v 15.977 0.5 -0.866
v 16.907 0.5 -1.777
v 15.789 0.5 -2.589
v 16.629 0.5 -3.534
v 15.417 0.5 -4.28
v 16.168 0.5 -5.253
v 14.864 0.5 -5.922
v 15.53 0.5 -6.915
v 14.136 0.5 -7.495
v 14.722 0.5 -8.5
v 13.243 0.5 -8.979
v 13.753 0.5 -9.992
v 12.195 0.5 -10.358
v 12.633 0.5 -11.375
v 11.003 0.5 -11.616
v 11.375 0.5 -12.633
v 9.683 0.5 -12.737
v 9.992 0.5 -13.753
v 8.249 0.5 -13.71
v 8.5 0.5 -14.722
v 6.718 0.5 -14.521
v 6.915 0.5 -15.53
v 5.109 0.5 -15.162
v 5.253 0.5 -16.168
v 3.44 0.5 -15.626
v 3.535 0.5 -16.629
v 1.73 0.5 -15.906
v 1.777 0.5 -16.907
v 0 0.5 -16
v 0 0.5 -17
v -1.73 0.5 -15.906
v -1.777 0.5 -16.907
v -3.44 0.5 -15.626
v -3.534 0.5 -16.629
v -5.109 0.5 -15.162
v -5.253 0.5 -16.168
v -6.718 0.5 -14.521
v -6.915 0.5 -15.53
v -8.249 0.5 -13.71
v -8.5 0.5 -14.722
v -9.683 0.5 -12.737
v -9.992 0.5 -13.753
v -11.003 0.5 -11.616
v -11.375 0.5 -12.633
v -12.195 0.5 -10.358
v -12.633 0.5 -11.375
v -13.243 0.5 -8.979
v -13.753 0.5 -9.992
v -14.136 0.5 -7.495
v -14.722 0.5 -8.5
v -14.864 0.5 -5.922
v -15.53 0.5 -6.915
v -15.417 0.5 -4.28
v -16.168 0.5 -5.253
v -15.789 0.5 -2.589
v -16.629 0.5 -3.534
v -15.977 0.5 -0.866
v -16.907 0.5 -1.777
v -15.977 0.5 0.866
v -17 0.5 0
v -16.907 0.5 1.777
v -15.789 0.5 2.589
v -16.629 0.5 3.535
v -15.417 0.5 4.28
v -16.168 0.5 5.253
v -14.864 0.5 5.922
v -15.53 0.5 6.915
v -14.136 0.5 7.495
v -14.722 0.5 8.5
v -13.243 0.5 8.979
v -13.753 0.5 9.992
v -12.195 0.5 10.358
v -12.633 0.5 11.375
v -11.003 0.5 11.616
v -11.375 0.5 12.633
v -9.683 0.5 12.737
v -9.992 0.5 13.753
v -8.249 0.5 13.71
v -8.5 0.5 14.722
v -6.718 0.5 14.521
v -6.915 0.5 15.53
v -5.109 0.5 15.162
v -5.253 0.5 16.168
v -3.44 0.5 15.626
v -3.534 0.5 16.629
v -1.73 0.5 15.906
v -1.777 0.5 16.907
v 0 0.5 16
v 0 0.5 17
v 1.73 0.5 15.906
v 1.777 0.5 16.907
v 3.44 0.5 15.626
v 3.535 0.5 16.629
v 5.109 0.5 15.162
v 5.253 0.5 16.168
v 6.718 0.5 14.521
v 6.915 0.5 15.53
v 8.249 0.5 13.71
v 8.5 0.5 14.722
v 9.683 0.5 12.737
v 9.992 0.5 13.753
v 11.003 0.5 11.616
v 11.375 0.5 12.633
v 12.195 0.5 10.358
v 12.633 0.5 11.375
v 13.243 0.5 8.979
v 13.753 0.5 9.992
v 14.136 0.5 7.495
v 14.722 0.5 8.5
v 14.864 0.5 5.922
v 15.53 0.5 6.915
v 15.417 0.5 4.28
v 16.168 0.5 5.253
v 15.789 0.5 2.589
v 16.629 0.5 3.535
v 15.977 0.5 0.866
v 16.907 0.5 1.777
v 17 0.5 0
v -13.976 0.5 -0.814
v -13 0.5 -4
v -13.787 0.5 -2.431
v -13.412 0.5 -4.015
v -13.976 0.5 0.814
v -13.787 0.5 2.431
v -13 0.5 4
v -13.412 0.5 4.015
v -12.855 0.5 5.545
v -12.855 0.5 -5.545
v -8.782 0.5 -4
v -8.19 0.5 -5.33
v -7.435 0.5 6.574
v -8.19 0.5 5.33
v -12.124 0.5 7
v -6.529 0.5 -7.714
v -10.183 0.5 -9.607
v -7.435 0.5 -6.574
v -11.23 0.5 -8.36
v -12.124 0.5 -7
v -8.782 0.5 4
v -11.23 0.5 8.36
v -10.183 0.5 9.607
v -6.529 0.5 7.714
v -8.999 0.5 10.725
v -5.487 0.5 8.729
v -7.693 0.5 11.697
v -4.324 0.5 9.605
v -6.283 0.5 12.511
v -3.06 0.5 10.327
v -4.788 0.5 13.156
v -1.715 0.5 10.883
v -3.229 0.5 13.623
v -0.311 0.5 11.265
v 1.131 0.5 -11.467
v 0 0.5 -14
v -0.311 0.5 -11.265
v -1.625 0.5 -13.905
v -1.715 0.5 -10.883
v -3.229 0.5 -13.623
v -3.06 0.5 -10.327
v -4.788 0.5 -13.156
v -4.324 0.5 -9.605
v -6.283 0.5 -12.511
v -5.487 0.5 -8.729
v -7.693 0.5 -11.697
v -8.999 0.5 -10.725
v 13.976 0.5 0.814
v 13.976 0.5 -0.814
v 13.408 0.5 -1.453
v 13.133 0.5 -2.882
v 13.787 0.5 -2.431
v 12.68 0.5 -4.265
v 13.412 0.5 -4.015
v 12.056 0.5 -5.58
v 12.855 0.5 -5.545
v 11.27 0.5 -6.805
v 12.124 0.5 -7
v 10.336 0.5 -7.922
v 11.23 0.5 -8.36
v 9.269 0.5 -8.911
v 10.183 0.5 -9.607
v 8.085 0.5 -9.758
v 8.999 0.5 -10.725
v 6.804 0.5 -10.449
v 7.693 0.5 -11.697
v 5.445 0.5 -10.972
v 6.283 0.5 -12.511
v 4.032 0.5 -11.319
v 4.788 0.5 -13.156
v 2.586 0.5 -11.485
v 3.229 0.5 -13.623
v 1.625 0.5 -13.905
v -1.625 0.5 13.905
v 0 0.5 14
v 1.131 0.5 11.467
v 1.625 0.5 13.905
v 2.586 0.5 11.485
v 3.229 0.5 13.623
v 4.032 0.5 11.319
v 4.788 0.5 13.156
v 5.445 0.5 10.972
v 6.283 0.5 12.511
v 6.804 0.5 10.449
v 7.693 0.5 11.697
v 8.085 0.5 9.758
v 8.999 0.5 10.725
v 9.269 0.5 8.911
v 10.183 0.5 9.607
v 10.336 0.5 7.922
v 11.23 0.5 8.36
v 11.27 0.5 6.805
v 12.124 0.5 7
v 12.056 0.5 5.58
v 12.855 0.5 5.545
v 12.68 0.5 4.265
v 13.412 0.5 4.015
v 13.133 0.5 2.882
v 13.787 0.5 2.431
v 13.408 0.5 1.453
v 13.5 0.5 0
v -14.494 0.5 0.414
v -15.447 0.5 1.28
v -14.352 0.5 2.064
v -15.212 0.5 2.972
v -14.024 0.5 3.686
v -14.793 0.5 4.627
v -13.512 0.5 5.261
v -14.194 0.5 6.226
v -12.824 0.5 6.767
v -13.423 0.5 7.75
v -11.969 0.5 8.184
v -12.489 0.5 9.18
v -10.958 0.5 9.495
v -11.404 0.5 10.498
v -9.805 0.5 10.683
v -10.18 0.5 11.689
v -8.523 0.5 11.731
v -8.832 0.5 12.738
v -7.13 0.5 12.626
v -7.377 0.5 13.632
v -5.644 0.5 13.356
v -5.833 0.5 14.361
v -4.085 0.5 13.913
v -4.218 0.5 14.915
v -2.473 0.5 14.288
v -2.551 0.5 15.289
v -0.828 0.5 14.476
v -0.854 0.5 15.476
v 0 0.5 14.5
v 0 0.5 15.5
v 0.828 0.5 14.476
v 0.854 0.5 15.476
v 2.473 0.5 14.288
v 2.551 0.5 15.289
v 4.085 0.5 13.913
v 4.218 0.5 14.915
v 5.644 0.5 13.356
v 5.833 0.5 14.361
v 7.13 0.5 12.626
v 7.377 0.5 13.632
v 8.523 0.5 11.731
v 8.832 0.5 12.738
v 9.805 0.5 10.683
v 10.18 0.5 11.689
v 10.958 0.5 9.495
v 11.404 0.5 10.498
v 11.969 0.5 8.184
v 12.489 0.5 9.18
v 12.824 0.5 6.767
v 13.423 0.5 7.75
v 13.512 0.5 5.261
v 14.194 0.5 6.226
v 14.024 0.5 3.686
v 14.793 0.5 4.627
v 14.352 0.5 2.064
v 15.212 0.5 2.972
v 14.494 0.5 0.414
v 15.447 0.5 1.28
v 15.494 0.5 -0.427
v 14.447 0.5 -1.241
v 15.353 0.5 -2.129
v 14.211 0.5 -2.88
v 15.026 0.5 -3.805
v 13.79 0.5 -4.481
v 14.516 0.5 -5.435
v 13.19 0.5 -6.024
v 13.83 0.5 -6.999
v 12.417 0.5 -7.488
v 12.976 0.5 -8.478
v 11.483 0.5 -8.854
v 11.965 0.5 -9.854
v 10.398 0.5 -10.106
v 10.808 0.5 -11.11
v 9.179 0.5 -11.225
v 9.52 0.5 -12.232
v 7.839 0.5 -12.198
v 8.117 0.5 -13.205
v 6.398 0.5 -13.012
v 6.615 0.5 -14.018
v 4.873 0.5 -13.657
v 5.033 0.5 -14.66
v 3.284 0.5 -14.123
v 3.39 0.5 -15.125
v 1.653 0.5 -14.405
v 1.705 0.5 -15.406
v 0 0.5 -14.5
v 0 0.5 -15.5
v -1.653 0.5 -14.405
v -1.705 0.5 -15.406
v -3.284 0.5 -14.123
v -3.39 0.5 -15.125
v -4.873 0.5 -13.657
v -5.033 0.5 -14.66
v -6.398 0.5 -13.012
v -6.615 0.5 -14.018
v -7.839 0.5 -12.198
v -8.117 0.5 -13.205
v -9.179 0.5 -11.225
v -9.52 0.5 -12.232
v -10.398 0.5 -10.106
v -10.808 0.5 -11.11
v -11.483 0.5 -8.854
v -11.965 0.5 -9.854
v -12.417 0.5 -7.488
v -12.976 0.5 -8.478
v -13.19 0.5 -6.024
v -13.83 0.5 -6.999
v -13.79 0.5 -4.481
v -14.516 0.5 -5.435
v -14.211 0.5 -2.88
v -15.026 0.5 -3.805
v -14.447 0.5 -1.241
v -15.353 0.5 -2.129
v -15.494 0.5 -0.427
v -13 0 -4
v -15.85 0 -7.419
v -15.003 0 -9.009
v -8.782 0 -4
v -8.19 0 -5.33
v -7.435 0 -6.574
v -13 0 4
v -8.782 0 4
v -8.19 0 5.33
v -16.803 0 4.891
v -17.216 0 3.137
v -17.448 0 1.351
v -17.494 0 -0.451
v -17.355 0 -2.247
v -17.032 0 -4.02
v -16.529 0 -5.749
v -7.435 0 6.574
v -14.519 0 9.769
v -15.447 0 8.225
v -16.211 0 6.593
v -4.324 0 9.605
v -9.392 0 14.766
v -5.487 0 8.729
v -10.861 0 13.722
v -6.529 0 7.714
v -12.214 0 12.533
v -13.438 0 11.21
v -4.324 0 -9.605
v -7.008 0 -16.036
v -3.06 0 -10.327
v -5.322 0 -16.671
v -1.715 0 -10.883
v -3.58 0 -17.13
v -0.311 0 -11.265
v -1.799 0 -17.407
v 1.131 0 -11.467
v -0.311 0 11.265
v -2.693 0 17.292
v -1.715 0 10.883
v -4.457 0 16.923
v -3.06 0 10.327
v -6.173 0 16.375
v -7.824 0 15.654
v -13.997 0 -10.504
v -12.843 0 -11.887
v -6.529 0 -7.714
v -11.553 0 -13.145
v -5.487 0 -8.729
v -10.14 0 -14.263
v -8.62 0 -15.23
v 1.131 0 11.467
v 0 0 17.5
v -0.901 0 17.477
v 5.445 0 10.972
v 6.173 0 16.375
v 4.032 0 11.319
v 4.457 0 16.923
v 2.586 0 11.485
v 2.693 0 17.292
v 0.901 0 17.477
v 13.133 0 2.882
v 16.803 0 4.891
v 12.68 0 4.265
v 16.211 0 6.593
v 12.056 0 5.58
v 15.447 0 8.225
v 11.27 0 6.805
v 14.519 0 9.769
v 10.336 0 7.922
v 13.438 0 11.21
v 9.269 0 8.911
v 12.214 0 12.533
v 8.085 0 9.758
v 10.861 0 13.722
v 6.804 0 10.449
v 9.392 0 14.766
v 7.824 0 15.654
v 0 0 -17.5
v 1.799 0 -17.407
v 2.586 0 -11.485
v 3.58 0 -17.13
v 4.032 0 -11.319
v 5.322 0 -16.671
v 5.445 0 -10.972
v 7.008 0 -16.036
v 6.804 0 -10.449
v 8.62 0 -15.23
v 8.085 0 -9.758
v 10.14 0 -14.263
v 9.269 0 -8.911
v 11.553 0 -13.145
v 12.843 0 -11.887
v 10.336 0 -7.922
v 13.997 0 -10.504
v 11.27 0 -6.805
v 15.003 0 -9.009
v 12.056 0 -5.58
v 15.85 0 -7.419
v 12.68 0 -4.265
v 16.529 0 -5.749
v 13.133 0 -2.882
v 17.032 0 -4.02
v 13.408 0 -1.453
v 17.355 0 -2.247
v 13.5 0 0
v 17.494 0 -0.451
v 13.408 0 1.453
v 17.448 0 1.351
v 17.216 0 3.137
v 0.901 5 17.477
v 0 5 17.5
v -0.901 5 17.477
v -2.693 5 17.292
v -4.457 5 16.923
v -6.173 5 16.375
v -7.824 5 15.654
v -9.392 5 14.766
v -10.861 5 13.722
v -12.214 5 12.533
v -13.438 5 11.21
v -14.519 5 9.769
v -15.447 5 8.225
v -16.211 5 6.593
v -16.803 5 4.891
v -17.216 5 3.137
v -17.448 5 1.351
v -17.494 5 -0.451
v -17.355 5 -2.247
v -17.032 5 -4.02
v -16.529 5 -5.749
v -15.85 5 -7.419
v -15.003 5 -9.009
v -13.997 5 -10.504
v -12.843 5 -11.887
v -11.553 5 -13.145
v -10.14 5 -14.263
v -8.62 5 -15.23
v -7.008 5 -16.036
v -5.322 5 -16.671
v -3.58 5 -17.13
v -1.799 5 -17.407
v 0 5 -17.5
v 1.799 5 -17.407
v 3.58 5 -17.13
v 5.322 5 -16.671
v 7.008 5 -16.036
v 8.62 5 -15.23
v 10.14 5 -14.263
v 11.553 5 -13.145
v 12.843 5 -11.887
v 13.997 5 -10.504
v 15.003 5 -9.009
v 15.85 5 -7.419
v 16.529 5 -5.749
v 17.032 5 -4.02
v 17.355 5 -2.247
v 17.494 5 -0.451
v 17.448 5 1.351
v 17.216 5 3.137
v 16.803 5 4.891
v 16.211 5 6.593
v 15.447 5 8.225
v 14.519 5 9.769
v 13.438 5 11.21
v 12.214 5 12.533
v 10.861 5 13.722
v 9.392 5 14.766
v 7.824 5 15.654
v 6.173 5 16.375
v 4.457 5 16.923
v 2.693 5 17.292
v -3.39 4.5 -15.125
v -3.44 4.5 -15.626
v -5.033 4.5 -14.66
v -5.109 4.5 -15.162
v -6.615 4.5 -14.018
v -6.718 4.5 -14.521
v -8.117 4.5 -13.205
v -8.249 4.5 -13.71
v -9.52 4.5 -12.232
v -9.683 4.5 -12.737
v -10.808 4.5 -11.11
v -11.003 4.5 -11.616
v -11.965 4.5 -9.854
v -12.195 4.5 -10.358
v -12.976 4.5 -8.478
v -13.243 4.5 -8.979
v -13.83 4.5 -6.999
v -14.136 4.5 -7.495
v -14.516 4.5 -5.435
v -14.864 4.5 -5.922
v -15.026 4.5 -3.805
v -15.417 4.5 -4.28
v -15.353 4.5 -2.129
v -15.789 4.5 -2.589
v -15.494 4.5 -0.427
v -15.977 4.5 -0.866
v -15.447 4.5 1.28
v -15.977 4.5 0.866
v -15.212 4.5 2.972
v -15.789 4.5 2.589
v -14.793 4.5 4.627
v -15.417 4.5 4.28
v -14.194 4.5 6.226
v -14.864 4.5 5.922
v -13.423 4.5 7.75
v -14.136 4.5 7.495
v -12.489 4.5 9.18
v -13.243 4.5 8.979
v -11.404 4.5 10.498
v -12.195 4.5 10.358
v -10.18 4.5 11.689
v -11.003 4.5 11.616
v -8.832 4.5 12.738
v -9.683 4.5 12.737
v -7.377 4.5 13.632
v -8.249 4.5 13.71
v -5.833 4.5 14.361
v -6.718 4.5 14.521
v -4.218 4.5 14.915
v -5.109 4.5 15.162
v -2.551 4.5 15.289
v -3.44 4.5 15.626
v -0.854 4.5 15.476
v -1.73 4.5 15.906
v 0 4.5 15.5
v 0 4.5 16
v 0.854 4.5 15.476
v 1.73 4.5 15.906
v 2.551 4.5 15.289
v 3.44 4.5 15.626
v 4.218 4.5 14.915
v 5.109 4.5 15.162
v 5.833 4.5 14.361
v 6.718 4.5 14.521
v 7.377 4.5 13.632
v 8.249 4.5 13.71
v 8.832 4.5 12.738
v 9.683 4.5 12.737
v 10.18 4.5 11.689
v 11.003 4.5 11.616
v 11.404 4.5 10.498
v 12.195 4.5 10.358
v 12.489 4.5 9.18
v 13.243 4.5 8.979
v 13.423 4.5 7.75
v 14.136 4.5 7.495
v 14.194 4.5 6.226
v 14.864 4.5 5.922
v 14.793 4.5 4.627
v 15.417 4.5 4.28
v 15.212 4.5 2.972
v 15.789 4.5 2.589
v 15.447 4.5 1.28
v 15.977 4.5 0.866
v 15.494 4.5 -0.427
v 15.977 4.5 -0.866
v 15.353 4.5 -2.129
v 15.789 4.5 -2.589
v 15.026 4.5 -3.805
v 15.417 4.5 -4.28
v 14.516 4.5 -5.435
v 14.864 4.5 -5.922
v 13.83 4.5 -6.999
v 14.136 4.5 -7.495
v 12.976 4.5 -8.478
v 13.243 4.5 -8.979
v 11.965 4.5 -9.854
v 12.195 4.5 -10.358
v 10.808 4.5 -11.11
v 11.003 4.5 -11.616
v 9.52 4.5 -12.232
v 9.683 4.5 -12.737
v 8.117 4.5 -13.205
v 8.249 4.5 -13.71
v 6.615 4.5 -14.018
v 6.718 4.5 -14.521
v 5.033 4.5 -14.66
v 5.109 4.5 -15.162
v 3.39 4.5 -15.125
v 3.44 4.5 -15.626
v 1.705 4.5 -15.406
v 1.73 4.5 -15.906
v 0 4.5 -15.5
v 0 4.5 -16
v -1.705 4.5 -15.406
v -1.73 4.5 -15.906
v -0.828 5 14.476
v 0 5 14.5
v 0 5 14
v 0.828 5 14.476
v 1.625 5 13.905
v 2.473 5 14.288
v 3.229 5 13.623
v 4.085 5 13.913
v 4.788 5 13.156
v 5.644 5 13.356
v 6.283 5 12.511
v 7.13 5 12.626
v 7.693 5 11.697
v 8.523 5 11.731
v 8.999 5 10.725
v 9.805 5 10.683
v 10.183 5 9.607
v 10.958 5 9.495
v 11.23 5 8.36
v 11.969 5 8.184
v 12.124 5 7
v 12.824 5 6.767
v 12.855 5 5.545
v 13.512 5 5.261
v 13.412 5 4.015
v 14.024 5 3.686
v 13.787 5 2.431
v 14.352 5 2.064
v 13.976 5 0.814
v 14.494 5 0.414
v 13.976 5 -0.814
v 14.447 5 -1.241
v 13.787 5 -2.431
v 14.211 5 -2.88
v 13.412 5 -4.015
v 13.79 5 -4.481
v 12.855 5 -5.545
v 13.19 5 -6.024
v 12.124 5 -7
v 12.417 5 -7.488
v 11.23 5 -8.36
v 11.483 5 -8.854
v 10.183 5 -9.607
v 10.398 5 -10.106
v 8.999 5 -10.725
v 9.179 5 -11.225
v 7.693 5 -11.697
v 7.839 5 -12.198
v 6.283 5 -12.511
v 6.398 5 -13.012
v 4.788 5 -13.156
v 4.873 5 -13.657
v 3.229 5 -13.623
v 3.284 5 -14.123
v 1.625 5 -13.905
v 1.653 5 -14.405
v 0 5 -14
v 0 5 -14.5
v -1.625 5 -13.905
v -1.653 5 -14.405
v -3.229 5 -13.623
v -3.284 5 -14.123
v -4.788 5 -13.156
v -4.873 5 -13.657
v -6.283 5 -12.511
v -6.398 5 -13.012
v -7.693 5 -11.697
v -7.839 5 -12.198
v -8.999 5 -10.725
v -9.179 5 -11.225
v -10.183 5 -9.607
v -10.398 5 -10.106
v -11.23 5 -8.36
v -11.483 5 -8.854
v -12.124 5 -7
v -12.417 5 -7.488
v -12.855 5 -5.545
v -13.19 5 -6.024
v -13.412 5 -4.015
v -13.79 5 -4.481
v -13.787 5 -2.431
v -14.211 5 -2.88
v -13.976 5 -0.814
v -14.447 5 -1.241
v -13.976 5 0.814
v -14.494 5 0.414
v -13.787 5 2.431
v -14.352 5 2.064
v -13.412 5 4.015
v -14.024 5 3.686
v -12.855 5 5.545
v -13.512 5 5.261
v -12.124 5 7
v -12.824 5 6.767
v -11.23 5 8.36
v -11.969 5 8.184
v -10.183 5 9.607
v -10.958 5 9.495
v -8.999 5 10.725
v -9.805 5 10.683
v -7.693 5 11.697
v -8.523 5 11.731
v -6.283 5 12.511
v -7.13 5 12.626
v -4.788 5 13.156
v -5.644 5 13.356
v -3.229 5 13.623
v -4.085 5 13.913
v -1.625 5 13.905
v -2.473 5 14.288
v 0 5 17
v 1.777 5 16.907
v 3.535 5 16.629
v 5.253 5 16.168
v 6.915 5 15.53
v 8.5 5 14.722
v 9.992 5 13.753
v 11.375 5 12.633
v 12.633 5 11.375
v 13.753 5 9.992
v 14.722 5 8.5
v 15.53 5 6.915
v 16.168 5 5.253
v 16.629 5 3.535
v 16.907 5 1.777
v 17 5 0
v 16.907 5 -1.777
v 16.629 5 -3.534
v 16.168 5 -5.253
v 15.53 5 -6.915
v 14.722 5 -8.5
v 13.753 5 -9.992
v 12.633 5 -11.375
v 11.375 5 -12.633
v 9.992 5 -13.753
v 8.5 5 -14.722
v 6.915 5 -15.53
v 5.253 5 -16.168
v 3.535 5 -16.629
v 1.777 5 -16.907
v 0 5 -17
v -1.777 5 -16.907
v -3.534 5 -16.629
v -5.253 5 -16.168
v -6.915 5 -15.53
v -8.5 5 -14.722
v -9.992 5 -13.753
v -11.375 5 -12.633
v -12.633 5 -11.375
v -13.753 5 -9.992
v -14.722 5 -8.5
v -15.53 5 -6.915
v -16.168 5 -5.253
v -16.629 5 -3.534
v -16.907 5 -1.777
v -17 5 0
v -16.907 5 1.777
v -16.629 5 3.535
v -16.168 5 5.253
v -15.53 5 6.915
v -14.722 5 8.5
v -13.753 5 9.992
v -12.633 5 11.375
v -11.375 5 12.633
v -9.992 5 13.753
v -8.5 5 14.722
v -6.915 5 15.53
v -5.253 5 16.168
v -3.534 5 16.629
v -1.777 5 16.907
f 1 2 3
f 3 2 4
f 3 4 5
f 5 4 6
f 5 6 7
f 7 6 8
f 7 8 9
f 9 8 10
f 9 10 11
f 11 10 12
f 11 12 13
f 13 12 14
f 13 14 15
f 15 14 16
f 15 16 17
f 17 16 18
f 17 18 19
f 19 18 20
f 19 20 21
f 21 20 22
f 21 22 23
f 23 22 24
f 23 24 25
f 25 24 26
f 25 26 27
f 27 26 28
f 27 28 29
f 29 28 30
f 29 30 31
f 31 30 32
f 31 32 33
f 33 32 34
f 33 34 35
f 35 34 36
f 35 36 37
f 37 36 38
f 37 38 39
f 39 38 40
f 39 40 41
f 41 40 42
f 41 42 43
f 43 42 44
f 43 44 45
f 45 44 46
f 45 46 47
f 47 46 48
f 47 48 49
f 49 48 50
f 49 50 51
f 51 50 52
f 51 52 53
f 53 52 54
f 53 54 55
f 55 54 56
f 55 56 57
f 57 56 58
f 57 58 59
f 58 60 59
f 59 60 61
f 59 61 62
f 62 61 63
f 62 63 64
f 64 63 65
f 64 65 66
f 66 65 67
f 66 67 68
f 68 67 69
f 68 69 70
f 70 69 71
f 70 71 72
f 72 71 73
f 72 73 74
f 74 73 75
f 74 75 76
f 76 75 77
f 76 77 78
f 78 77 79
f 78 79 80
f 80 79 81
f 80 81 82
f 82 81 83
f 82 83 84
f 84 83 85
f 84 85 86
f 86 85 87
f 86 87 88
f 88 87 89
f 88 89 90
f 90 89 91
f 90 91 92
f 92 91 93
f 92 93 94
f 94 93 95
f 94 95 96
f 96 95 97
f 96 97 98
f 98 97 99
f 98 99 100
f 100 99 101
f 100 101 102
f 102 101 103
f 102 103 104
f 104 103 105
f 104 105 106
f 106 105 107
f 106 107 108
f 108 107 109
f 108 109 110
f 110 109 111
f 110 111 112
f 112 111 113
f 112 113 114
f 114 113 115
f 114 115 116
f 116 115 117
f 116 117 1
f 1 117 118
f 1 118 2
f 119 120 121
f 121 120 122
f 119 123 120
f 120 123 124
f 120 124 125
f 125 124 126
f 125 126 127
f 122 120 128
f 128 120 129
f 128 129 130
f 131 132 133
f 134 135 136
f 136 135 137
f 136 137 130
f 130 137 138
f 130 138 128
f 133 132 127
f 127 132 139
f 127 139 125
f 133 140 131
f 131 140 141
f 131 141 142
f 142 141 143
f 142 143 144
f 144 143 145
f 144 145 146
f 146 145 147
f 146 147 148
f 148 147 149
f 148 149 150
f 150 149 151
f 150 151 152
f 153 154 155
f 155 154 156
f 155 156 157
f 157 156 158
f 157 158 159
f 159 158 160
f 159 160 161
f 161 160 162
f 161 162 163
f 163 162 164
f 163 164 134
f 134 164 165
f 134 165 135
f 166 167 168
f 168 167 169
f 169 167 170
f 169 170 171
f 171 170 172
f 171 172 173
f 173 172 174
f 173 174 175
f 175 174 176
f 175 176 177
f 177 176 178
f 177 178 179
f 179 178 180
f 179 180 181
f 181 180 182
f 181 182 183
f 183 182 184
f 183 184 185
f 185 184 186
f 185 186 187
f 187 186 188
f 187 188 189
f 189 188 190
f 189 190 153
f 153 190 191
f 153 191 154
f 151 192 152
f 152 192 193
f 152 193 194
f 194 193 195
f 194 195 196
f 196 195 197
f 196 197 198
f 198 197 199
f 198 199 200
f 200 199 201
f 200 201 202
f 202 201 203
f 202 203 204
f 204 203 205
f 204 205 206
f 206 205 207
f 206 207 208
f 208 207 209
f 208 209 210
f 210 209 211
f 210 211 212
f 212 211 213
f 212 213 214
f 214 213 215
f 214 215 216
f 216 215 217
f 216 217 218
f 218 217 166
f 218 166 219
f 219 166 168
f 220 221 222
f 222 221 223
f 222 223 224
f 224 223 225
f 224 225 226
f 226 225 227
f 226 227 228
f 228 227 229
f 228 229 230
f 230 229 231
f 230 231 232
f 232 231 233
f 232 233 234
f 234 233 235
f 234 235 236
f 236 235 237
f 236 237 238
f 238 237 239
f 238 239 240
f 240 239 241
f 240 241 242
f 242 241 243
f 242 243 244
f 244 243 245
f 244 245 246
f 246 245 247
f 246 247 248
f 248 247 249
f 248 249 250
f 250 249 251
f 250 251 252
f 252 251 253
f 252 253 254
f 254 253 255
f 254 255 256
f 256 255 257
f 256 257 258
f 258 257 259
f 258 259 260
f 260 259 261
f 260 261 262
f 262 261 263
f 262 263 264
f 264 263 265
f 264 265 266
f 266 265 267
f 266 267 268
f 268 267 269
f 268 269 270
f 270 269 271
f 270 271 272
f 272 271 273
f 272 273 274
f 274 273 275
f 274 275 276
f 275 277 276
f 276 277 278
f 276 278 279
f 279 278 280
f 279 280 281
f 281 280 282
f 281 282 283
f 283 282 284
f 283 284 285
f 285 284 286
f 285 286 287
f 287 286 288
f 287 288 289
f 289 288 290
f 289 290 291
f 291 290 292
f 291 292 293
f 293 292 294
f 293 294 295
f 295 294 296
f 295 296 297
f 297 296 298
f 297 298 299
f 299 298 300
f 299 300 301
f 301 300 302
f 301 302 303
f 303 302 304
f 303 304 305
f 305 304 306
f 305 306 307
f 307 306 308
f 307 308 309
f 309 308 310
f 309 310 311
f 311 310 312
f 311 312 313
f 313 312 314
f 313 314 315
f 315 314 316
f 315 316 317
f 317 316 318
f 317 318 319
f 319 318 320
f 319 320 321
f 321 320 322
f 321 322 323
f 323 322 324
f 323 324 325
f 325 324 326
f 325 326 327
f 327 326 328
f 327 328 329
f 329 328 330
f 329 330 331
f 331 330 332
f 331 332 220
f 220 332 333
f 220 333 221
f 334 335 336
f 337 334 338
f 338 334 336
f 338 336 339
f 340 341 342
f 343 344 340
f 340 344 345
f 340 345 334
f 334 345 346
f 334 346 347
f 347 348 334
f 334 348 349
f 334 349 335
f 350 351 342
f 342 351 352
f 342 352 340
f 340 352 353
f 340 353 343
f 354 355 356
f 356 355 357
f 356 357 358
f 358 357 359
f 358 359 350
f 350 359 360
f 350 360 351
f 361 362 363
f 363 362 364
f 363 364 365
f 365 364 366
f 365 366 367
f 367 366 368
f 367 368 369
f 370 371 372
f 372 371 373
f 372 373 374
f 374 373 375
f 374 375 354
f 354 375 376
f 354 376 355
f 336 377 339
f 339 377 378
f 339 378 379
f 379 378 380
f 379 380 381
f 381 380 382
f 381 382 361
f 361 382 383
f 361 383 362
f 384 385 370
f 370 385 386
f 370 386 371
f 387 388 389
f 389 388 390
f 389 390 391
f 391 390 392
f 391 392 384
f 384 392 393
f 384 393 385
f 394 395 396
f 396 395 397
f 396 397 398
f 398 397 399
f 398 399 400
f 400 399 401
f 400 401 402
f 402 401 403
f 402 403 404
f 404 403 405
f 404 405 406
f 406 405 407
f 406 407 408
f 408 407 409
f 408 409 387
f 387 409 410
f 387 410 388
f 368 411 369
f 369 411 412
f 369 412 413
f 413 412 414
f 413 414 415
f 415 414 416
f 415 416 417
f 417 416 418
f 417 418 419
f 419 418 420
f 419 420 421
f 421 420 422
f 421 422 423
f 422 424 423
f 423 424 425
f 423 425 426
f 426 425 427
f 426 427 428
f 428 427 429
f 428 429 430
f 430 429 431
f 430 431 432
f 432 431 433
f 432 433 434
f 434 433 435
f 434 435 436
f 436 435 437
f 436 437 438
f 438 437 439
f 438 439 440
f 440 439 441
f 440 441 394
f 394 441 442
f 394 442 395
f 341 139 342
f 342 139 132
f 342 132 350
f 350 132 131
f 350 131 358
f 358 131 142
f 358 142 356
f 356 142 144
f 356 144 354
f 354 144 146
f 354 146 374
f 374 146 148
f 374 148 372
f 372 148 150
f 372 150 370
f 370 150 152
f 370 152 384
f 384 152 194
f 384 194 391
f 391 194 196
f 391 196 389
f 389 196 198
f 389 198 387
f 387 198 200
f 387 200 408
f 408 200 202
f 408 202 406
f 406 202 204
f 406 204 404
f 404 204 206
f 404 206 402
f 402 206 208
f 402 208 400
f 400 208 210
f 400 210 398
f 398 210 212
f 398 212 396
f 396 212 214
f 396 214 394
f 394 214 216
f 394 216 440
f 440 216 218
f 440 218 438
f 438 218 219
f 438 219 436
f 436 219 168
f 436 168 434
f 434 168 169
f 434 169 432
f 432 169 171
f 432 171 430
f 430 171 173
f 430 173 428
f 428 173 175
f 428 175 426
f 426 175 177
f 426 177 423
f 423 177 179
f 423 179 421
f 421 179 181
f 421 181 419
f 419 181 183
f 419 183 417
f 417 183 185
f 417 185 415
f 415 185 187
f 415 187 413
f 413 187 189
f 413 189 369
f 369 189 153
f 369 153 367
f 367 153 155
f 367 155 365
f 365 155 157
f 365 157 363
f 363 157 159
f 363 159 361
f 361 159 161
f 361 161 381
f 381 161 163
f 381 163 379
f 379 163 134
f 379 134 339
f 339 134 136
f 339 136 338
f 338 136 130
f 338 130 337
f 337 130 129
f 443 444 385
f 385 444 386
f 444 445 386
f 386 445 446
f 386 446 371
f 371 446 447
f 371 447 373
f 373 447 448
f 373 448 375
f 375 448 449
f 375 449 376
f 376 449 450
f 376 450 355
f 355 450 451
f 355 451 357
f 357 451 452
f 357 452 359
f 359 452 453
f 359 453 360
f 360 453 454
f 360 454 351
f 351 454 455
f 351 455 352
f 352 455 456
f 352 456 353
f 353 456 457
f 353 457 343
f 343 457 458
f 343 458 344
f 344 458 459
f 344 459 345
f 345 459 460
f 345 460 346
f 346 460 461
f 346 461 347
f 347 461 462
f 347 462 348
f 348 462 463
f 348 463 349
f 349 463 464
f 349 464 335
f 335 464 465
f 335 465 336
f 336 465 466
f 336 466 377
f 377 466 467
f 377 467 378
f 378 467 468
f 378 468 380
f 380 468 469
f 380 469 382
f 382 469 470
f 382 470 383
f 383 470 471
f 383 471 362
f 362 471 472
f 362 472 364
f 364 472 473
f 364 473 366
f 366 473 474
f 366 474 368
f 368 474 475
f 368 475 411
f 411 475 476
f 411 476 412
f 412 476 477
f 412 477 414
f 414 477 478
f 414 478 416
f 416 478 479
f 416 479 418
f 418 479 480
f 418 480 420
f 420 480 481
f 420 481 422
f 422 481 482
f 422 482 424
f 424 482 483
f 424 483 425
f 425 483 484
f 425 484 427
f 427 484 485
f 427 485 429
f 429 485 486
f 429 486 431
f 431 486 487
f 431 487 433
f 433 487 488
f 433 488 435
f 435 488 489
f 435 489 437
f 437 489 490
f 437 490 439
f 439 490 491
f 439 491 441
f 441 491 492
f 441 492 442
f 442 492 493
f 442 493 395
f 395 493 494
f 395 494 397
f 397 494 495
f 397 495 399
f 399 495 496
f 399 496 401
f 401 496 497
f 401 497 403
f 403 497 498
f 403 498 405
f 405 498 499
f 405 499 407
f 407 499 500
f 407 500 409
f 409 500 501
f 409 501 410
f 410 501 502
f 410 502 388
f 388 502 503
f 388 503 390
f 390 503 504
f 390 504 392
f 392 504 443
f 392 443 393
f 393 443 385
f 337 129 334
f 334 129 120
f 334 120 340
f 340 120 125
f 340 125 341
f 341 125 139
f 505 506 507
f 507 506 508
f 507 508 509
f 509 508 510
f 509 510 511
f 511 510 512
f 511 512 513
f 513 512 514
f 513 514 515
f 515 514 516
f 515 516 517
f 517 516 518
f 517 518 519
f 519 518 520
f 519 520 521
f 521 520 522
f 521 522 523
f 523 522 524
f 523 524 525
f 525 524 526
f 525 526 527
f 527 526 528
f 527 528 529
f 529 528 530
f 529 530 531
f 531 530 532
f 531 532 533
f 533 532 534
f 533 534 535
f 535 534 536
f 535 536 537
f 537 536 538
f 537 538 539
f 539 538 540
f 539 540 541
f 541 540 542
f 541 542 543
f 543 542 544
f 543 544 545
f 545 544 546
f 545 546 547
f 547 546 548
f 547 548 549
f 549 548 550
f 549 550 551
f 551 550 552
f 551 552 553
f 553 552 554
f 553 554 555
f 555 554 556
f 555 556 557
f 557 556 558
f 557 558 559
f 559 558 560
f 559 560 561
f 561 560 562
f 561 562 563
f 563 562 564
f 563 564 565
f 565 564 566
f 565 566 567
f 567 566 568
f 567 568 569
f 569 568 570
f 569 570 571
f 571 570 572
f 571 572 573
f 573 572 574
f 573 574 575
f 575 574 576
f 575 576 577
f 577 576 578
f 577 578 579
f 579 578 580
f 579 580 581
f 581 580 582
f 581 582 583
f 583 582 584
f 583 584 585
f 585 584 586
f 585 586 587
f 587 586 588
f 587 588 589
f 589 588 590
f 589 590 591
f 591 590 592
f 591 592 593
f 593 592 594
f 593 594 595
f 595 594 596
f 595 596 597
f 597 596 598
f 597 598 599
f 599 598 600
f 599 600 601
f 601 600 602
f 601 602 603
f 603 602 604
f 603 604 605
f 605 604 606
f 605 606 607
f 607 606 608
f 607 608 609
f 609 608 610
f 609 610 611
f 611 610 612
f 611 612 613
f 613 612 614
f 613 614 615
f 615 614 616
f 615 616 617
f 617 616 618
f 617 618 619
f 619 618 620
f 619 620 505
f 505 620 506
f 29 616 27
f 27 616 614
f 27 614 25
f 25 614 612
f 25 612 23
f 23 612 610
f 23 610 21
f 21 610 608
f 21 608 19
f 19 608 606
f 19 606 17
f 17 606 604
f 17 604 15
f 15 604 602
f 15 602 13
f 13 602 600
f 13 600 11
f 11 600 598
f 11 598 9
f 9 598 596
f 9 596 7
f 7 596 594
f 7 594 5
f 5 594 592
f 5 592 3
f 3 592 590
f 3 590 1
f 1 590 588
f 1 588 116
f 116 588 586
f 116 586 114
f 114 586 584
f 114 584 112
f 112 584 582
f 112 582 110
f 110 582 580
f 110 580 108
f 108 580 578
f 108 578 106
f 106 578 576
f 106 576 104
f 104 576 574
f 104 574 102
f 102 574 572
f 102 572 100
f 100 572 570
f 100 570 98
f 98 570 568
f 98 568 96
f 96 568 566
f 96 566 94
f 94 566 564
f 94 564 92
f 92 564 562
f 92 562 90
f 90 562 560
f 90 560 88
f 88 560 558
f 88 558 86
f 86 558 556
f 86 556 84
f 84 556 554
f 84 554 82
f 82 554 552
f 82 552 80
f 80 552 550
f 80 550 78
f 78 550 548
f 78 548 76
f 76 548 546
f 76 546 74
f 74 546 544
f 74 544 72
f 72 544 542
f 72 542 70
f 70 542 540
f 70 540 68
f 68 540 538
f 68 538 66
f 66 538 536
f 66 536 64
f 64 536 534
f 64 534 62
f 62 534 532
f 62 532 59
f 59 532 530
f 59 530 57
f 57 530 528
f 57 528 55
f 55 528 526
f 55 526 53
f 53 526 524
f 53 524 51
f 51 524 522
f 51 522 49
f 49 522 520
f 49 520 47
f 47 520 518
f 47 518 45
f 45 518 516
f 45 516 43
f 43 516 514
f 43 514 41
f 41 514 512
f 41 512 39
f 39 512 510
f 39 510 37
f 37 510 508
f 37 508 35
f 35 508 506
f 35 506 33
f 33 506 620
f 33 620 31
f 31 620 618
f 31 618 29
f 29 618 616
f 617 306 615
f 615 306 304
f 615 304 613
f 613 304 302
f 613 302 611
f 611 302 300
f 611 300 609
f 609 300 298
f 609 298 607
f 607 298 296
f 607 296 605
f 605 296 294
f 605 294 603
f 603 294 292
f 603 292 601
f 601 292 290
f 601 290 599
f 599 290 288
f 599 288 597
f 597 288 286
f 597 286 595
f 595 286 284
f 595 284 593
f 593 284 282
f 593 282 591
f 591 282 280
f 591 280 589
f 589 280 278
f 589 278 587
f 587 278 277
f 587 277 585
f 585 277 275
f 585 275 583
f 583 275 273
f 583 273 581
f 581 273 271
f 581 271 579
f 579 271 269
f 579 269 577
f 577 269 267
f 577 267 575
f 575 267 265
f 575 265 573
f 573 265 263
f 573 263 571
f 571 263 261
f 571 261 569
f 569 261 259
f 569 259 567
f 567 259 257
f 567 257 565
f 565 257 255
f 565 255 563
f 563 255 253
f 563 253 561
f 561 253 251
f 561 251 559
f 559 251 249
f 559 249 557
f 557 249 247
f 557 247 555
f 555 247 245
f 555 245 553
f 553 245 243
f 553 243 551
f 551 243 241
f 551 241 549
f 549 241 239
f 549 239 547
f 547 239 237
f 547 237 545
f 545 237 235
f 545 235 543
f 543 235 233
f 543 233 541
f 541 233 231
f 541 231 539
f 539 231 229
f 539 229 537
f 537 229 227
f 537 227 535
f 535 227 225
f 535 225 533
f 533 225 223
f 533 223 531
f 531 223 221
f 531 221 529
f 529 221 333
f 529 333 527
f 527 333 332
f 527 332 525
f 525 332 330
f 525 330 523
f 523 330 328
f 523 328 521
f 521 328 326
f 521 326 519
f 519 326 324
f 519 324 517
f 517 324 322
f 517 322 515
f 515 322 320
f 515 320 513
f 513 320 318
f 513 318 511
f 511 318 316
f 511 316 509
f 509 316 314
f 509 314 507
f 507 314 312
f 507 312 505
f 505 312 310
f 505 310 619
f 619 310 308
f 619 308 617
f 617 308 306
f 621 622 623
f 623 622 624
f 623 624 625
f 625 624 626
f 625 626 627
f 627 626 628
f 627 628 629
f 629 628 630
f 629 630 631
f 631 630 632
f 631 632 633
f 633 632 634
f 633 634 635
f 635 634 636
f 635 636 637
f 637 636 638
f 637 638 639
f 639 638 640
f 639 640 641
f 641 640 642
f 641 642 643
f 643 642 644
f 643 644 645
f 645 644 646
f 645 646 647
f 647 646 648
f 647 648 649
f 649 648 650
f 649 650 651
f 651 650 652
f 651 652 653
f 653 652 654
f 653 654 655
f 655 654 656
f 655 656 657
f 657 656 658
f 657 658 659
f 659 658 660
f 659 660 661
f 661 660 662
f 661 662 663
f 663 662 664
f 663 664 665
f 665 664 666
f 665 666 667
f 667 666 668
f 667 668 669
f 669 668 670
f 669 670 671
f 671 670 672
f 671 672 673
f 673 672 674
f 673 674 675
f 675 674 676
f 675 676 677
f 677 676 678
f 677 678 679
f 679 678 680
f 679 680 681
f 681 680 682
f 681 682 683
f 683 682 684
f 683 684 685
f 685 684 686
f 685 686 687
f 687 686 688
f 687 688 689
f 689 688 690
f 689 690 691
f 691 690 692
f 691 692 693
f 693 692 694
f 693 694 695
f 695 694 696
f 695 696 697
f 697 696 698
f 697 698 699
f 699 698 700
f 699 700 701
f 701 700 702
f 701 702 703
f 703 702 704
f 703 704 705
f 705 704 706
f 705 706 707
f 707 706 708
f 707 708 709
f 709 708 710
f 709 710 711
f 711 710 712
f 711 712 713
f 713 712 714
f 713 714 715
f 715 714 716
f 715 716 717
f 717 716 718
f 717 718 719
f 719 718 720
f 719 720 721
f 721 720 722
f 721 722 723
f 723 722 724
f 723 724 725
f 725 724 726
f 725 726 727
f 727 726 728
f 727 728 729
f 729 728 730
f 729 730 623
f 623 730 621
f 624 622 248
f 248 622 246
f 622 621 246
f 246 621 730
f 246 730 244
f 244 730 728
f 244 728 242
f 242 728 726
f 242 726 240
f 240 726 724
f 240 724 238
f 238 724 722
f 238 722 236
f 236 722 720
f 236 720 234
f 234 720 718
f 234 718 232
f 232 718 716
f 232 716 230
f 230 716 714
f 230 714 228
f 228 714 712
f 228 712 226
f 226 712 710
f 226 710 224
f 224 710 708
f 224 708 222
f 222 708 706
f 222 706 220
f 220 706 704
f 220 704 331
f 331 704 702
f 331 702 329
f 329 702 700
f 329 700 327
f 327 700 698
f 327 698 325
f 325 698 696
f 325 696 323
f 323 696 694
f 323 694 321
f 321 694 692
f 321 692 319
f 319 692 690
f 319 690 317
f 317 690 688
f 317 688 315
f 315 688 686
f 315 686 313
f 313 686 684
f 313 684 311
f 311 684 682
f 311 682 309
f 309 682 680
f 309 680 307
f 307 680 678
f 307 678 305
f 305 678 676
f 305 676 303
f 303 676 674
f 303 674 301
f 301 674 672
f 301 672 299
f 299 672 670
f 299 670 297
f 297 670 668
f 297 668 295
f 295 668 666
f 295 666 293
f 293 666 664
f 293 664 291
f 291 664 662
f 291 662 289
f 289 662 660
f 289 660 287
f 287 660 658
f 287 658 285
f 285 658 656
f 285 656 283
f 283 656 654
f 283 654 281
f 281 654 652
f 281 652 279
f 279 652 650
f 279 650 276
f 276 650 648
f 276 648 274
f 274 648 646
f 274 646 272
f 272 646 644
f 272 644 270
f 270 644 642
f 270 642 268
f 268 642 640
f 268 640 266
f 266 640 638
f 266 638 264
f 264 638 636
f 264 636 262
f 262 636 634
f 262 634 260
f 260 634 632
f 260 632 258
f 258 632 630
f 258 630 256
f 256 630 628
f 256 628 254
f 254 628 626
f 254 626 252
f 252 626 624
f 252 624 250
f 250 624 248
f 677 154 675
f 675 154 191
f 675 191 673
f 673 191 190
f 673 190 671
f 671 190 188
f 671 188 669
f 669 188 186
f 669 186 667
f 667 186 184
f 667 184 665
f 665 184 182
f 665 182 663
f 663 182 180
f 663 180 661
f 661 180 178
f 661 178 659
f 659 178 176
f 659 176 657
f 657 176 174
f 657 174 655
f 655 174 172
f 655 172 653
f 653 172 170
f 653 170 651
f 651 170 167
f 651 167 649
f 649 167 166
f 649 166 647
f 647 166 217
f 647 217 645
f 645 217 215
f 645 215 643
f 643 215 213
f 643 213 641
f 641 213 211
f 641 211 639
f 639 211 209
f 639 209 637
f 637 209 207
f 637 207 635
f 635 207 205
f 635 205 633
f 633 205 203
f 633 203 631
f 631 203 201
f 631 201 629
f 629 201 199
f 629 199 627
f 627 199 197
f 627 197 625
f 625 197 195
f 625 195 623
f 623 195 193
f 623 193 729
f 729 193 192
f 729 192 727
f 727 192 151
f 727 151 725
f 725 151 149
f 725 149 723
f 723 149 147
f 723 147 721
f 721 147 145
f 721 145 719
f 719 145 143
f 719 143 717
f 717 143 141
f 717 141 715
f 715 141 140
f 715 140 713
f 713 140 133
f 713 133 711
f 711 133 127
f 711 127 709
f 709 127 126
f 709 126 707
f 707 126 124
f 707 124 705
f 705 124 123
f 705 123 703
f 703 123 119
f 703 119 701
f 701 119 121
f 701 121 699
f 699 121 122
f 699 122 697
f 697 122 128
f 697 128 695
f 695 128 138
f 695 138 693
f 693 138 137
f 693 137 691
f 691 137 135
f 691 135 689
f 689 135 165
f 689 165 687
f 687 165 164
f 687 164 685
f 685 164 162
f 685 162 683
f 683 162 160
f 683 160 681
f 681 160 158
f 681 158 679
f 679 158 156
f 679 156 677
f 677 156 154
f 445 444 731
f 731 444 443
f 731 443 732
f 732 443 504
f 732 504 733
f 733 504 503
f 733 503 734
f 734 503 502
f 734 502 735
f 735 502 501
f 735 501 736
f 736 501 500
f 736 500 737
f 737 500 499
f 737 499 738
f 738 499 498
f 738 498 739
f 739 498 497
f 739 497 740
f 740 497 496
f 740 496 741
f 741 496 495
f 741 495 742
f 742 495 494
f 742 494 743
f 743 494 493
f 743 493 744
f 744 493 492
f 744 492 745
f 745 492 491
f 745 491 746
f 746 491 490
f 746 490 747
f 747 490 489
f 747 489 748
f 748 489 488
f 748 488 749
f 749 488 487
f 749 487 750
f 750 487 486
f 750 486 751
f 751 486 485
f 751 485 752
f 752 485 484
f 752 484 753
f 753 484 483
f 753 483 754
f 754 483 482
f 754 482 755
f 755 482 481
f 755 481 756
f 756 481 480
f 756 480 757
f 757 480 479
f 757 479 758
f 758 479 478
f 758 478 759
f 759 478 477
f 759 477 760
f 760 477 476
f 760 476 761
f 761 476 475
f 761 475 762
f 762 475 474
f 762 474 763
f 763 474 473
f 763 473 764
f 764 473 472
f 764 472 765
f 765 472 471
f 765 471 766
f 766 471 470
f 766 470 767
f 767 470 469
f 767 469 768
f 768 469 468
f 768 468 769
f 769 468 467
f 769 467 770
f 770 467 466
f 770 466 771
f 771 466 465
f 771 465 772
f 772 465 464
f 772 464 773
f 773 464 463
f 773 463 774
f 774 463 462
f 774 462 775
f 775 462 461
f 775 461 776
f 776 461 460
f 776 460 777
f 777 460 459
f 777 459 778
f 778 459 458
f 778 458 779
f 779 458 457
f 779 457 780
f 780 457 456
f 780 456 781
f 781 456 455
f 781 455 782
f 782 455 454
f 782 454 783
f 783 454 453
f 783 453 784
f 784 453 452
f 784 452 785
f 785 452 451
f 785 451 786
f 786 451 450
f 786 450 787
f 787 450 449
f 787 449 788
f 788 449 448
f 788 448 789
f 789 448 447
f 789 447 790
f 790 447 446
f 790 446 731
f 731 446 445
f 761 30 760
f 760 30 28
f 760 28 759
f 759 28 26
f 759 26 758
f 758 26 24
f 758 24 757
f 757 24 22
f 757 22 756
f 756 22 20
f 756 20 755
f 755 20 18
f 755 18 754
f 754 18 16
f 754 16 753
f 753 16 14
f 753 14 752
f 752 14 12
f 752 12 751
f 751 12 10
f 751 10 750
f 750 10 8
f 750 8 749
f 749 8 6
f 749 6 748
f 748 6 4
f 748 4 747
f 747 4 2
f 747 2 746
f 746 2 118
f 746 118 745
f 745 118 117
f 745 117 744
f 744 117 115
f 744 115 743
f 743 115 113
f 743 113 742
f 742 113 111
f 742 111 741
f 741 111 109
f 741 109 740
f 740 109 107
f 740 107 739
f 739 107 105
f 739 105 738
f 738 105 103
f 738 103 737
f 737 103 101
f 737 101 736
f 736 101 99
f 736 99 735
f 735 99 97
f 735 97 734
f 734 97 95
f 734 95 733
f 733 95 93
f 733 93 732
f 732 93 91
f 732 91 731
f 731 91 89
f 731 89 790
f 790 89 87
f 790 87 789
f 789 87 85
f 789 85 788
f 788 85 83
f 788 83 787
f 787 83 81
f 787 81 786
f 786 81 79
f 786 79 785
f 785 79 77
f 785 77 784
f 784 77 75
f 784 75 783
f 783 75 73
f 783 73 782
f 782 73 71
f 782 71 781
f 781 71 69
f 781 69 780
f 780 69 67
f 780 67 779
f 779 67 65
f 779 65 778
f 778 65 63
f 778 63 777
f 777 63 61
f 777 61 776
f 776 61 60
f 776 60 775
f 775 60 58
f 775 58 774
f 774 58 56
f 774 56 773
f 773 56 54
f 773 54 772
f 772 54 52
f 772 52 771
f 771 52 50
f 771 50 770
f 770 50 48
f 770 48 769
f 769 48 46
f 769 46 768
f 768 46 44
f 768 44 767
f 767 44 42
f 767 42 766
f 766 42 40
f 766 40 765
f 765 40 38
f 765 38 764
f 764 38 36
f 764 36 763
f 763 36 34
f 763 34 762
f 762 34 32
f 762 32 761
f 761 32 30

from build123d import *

# Parameters (mm, degrees)
SKETCH1_R           = 17.5
BOSS_EXTRUDE1_DEPTH = 0.5
SKETCH2_R           = 11.5
CUT_EXTRUDE1_DEPTH  = 0.5
SKETCH3_W           = 15
SKETCH3_H           = 8
CUT_EXTRUDE4_DEPTH  = 2.5
SKETCH4_R           = 16
SKETCH4_R_2         = 15.5
BOSS_EXTRUDE2_DEPTH = 4.5
SKETCH5_R           = 14.5
SKETCH5_R_2         = 14
BOSS_EXTRUDE3_DEPTH = 4.5
SKETCH6_R           = 17.5
SKETCH6_R_2         = 17
BOSS_EXTRUDE4_DEPTH = 4.5


with BuildPart() as part:
    # Sketch1 → Boss-Extrude1 (new body)
    with BuildSketch(Plane(origin=(0, 0, 0), x_dir=(1, 0, 0), z_dir=(0, 1, 0))):
        with Locations(Location((0, 0, 0), (0, 0, 270))):
            Circle(SKETCH1_R)
    extrude(amount=BOSS_EXTRUDE1_DEPTH)

    # Sketch2 → Cut-Extrude1 (cut)
    with BuildSketch(Plane(origin=(0, 0.5, 0), x_dir=(1, 0, 0), z_dir=(0, 1, 0))):
        with Locations(Location((2, 0, 0), (0, 0, 270))):
            Circle(SKETCH2_R)
    extrude(amount=-CUT_EXTRUDE1_DEPTH, mode=Mode.SUBTRACT)

    # Sketch3 → Cut-Extrude4 (cut)
    with BuildSketch(Plane(origin=(0, 0, 0), x_dir=(1, 0, 0), z_dir=(0, 1, 0))):
        with Locations((-5.5, 0)):
            Rectangle(SKETCH3_W, SKETCH3_H)
    extrude(amount=CUT_EXTRUDE4_DEPTH, mode=Mode.SUBTRACT)

    # Sketch4 → Boss-Extrude2 (add)
    with BuildSketch(Plane(origin=(0, 0, 0), x_dir=(1, 0, 0), z_dir=(0, 1, 0))):
        with Locations(Location((0, 0, 0), (0, 0, 270))):
            Circle(SKETCH4_R)
        with Locations(Location((0, 0, 0), (0, 0, 270))):
            Circle(SKETCH4_R_2, mode=Mode.SUBTRACT)
    extrude(amount=BOSS_EXTRUDE2_DEPTH)

    # Sketch5 → Boss-Extrude3 (add)
    with BuildSketch(Plane(origin=(0, 0.5, 0), x_dir=(1, 0, 0), z_dir=(0, 1, 0))):
        with Locations(Location((0, 0, 0), (0, 0, 270))):
            Circle(SKETCH5_R)
        with Locations(Location((0, 0, 0), (0, 0, 270))):
            Circle(SKETCH5_R_2, mode=Mode.SUBTRACT)
    extrude(amount=BOSS_EXTRUDE3_DEPTH)

    # Sketch6 → Boss-Extrude4 (add)
    with BuildSketch(Plane(origin=(0, 0.5, 0), x_dir=(1, 0, 0), z_dir=(0, 1, 0))):
        with Locations(Location((0, 0, 0), (0, 0, 270))):
            Circle(SKETCH6_R)
        with Locations(Location((0, 0, 0), (0, 0, 270))):
            Circle(SKETCH6_R_2, mode=Mode.SUBTRACT)
    extrude(amount=BOSS_EXTRUDE4_DEPTH)


solid = part.part
